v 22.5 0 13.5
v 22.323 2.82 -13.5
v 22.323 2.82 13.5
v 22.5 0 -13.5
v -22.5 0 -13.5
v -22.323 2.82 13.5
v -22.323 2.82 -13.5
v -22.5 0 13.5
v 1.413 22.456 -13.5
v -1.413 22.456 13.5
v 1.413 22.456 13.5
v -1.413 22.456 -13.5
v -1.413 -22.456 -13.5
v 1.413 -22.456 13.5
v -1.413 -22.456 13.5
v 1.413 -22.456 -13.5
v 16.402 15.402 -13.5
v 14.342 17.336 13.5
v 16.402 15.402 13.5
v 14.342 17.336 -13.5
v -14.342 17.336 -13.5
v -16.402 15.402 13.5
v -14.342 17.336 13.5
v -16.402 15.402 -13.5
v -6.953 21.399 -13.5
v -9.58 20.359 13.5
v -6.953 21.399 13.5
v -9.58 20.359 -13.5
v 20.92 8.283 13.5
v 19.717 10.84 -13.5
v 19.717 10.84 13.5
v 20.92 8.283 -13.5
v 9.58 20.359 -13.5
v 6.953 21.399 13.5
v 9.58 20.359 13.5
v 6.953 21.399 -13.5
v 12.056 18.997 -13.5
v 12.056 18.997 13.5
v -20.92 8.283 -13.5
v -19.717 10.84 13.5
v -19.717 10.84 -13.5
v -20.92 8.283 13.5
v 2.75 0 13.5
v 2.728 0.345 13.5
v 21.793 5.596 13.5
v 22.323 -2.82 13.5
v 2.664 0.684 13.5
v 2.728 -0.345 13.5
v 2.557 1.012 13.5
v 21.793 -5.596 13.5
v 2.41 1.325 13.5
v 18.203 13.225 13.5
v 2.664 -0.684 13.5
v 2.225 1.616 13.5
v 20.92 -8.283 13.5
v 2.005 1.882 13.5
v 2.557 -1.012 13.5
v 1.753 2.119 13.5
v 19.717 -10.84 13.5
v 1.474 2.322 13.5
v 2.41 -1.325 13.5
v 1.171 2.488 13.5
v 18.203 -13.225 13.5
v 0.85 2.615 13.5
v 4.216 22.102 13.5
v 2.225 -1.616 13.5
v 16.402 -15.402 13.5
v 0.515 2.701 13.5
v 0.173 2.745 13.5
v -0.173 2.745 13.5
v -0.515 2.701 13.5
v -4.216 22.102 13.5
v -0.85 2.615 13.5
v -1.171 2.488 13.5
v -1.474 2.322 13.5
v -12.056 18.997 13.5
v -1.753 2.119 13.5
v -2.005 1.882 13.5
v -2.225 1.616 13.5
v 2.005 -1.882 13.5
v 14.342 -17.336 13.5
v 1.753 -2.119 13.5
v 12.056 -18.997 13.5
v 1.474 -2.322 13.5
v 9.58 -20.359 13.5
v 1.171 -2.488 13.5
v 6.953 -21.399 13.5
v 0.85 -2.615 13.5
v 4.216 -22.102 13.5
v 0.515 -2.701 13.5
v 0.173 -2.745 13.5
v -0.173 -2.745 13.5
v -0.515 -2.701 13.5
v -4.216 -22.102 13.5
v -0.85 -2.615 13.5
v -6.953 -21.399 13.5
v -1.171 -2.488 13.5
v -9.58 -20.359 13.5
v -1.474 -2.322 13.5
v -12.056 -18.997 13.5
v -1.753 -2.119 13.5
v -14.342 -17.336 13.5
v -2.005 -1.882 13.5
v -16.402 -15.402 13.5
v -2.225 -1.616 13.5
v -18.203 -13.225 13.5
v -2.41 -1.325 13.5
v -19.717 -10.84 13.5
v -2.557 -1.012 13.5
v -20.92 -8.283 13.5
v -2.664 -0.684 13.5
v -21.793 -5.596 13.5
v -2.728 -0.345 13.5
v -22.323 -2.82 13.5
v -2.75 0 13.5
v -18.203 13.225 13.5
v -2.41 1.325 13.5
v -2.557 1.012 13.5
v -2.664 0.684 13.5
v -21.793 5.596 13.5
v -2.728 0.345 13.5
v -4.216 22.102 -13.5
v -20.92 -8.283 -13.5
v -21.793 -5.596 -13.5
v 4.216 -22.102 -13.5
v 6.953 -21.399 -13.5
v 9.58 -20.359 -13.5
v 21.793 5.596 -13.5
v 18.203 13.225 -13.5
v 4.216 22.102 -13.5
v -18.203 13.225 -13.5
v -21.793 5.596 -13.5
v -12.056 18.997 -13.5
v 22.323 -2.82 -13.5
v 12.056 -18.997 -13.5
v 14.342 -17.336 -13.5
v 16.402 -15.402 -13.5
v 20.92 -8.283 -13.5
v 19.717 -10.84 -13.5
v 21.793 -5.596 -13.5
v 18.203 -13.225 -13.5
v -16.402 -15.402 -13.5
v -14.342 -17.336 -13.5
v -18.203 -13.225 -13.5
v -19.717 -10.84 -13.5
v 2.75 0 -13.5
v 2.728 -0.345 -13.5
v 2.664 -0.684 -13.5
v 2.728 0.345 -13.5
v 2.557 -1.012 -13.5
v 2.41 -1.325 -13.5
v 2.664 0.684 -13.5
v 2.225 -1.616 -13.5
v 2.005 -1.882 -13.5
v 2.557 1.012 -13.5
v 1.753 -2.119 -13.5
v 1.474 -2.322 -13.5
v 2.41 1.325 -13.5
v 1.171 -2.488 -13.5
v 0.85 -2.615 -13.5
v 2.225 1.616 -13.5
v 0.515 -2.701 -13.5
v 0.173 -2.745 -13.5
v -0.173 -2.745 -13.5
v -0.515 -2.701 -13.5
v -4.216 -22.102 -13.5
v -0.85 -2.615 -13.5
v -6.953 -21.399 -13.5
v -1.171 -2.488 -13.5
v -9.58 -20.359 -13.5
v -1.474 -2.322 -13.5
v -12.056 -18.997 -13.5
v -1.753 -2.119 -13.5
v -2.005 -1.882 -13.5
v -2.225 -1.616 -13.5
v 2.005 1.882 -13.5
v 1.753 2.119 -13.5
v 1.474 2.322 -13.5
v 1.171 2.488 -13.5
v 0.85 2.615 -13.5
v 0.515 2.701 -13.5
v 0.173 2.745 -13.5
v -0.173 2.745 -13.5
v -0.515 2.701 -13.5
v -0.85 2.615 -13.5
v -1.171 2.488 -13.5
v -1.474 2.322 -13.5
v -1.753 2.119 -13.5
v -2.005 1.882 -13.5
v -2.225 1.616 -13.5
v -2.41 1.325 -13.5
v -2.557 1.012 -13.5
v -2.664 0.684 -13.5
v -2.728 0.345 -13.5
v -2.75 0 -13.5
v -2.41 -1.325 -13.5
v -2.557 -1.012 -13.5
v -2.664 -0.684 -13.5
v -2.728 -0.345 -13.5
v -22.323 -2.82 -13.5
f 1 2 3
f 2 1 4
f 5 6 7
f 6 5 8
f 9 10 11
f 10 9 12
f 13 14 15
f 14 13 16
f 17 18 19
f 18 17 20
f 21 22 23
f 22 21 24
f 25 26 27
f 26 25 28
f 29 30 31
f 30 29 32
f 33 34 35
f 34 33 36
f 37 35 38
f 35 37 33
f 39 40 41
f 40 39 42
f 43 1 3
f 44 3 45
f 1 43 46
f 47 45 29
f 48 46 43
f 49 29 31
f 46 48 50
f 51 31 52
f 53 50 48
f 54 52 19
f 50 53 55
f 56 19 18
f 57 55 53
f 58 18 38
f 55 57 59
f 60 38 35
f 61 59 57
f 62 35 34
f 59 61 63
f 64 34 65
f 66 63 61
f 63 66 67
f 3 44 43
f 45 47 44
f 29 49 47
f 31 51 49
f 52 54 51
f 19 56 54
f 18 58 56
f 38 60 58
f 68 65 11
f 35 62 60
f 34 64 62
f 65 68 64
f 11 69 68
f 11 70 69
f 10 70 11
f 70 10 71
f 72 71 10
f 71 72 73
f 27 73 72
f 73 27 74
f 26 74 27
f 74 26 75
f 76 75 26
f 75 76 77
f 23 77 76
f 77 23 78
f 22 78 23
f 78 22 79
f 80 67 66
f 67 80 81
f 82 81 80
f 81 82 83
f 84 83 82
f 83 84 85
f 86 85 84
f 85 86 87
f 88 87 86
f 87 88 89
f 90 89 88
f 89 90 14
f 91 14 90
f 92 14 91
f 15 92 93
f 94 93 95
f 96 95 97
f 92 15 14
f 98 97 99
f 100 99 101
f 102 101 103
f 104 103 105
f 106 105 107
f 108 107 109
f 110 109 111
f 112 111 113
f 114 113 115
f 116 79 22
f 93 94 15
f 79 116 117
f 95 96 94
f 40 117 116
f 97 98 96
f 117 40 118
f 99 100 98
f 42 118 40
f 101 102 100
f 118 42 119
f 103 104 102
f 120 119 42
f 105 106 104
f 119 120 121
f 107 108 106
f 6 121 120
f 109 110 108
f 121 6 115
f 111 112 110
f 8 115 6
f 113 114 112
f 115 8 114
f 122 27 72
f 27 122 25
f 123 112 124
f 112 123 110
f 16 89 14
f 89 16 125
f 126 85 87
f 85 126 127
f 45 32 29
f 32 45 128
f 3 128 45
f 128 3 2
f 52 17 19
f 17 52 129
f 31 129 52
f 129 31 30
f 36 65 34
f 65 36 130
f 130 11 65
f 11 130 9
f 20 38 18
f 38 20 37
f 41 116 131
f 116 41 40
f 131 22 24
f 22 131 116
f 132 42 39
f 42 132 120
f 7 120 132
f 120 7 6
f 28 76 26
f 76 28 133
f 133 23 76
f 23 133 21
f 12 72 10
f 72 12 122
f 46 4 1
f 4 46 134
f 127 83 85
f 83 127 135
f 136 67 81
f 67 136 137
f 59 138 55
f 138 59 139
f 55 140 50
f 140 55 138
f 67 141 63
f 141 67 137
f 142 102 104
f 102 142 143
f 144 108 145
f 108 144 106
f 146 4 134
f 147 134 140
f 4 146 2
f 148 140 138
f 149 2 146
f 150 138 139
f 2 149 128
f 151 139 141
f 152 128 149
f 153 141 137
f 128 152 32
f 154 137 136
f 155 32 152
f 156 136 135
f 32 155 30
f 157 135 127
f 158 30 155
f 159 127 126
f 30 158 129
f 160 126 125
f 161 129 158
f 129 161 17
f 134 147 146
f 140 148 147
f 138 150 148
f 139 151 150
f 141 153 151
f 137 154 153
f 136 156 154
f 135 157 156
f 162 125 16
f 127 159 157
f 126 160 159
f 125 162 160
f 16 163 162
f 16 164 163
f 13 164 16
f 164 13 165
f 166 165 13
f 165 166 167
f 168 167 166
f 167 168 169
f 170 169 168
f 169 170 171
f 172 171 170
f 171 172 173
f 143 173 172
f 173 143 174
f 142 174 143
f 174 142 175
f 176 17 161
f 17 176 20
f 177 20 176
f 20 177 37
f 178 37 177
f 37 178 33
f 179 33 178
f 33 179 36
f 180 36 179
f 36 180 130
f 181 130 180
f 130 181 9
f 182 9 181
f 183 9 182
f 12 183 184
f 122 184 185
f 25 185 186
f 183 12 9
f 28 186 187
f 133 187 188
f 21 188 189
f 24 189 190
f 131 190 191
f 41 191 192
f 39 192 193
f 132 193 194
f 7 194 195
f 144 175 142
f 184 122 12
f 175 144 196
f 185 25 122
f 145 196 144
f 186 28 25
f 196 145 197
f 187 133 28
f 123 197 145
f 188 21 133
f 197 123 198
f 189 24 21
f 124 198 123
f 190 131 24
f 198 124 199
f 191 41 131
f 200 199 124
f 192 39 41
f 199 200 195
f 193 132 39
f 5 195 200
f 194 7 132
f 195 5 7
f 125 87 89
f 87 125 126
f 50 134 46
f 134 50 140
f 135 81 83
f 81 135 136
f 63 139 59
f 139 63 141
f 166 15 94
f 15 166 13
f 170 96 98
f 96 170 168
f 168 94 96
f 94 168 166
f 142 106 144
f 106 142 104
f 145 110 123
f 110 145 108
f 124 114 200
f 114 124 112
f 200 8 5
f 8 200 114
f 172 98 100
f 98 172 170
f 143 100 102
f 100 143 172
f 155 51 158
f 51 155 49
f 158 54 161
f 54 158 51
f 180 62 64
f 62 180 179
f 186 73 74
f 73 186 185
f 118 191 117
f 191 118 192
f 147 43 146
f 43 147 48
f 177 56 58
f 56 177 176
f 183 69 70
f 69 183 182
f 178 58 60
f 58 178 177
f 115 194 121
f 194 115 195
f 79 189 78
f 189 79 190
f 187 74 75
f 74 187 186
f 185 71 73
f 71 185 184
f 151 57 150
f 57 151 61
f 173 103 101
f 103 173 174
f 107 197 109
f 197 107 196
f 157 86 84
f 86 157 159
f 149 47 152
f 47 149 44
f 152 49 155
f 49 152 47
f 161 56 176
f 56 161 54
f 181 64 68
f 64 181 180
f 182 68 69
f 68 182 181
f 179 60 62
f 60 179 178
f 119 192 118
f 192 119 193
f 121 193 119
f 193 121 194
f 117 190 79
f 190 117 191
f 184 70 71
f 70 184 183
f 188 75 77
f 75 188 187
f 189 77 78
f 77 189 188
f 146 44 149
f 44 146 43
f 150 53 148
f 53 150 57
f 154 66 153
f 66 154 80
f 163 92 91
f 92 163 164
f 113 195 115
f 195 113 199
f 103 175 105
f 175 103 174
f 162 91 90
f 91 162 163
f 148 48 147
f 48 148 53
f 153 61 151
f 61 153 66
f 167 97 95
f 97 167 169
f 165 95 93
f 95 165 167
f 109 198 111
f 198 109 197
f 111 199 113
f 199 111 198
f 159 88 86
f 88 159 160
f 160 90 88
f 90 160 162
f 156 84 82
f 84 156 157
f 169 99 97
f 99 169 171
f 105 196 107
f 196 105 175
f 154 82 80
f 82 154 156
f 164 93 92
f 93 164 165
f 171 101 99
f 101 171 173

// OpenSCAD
$fn = 50;


difference() {
	union() {
		translate(v = [0, 0, -13.5000000000]) {
			cylinder(h = 27, r = 22.5000000000);
		}
	}
	union() {
		translate(v = [0, 0, -100.0000000000]) {
			cylinder(h = 200, r = 2.7500000000);
		}
	}
}
